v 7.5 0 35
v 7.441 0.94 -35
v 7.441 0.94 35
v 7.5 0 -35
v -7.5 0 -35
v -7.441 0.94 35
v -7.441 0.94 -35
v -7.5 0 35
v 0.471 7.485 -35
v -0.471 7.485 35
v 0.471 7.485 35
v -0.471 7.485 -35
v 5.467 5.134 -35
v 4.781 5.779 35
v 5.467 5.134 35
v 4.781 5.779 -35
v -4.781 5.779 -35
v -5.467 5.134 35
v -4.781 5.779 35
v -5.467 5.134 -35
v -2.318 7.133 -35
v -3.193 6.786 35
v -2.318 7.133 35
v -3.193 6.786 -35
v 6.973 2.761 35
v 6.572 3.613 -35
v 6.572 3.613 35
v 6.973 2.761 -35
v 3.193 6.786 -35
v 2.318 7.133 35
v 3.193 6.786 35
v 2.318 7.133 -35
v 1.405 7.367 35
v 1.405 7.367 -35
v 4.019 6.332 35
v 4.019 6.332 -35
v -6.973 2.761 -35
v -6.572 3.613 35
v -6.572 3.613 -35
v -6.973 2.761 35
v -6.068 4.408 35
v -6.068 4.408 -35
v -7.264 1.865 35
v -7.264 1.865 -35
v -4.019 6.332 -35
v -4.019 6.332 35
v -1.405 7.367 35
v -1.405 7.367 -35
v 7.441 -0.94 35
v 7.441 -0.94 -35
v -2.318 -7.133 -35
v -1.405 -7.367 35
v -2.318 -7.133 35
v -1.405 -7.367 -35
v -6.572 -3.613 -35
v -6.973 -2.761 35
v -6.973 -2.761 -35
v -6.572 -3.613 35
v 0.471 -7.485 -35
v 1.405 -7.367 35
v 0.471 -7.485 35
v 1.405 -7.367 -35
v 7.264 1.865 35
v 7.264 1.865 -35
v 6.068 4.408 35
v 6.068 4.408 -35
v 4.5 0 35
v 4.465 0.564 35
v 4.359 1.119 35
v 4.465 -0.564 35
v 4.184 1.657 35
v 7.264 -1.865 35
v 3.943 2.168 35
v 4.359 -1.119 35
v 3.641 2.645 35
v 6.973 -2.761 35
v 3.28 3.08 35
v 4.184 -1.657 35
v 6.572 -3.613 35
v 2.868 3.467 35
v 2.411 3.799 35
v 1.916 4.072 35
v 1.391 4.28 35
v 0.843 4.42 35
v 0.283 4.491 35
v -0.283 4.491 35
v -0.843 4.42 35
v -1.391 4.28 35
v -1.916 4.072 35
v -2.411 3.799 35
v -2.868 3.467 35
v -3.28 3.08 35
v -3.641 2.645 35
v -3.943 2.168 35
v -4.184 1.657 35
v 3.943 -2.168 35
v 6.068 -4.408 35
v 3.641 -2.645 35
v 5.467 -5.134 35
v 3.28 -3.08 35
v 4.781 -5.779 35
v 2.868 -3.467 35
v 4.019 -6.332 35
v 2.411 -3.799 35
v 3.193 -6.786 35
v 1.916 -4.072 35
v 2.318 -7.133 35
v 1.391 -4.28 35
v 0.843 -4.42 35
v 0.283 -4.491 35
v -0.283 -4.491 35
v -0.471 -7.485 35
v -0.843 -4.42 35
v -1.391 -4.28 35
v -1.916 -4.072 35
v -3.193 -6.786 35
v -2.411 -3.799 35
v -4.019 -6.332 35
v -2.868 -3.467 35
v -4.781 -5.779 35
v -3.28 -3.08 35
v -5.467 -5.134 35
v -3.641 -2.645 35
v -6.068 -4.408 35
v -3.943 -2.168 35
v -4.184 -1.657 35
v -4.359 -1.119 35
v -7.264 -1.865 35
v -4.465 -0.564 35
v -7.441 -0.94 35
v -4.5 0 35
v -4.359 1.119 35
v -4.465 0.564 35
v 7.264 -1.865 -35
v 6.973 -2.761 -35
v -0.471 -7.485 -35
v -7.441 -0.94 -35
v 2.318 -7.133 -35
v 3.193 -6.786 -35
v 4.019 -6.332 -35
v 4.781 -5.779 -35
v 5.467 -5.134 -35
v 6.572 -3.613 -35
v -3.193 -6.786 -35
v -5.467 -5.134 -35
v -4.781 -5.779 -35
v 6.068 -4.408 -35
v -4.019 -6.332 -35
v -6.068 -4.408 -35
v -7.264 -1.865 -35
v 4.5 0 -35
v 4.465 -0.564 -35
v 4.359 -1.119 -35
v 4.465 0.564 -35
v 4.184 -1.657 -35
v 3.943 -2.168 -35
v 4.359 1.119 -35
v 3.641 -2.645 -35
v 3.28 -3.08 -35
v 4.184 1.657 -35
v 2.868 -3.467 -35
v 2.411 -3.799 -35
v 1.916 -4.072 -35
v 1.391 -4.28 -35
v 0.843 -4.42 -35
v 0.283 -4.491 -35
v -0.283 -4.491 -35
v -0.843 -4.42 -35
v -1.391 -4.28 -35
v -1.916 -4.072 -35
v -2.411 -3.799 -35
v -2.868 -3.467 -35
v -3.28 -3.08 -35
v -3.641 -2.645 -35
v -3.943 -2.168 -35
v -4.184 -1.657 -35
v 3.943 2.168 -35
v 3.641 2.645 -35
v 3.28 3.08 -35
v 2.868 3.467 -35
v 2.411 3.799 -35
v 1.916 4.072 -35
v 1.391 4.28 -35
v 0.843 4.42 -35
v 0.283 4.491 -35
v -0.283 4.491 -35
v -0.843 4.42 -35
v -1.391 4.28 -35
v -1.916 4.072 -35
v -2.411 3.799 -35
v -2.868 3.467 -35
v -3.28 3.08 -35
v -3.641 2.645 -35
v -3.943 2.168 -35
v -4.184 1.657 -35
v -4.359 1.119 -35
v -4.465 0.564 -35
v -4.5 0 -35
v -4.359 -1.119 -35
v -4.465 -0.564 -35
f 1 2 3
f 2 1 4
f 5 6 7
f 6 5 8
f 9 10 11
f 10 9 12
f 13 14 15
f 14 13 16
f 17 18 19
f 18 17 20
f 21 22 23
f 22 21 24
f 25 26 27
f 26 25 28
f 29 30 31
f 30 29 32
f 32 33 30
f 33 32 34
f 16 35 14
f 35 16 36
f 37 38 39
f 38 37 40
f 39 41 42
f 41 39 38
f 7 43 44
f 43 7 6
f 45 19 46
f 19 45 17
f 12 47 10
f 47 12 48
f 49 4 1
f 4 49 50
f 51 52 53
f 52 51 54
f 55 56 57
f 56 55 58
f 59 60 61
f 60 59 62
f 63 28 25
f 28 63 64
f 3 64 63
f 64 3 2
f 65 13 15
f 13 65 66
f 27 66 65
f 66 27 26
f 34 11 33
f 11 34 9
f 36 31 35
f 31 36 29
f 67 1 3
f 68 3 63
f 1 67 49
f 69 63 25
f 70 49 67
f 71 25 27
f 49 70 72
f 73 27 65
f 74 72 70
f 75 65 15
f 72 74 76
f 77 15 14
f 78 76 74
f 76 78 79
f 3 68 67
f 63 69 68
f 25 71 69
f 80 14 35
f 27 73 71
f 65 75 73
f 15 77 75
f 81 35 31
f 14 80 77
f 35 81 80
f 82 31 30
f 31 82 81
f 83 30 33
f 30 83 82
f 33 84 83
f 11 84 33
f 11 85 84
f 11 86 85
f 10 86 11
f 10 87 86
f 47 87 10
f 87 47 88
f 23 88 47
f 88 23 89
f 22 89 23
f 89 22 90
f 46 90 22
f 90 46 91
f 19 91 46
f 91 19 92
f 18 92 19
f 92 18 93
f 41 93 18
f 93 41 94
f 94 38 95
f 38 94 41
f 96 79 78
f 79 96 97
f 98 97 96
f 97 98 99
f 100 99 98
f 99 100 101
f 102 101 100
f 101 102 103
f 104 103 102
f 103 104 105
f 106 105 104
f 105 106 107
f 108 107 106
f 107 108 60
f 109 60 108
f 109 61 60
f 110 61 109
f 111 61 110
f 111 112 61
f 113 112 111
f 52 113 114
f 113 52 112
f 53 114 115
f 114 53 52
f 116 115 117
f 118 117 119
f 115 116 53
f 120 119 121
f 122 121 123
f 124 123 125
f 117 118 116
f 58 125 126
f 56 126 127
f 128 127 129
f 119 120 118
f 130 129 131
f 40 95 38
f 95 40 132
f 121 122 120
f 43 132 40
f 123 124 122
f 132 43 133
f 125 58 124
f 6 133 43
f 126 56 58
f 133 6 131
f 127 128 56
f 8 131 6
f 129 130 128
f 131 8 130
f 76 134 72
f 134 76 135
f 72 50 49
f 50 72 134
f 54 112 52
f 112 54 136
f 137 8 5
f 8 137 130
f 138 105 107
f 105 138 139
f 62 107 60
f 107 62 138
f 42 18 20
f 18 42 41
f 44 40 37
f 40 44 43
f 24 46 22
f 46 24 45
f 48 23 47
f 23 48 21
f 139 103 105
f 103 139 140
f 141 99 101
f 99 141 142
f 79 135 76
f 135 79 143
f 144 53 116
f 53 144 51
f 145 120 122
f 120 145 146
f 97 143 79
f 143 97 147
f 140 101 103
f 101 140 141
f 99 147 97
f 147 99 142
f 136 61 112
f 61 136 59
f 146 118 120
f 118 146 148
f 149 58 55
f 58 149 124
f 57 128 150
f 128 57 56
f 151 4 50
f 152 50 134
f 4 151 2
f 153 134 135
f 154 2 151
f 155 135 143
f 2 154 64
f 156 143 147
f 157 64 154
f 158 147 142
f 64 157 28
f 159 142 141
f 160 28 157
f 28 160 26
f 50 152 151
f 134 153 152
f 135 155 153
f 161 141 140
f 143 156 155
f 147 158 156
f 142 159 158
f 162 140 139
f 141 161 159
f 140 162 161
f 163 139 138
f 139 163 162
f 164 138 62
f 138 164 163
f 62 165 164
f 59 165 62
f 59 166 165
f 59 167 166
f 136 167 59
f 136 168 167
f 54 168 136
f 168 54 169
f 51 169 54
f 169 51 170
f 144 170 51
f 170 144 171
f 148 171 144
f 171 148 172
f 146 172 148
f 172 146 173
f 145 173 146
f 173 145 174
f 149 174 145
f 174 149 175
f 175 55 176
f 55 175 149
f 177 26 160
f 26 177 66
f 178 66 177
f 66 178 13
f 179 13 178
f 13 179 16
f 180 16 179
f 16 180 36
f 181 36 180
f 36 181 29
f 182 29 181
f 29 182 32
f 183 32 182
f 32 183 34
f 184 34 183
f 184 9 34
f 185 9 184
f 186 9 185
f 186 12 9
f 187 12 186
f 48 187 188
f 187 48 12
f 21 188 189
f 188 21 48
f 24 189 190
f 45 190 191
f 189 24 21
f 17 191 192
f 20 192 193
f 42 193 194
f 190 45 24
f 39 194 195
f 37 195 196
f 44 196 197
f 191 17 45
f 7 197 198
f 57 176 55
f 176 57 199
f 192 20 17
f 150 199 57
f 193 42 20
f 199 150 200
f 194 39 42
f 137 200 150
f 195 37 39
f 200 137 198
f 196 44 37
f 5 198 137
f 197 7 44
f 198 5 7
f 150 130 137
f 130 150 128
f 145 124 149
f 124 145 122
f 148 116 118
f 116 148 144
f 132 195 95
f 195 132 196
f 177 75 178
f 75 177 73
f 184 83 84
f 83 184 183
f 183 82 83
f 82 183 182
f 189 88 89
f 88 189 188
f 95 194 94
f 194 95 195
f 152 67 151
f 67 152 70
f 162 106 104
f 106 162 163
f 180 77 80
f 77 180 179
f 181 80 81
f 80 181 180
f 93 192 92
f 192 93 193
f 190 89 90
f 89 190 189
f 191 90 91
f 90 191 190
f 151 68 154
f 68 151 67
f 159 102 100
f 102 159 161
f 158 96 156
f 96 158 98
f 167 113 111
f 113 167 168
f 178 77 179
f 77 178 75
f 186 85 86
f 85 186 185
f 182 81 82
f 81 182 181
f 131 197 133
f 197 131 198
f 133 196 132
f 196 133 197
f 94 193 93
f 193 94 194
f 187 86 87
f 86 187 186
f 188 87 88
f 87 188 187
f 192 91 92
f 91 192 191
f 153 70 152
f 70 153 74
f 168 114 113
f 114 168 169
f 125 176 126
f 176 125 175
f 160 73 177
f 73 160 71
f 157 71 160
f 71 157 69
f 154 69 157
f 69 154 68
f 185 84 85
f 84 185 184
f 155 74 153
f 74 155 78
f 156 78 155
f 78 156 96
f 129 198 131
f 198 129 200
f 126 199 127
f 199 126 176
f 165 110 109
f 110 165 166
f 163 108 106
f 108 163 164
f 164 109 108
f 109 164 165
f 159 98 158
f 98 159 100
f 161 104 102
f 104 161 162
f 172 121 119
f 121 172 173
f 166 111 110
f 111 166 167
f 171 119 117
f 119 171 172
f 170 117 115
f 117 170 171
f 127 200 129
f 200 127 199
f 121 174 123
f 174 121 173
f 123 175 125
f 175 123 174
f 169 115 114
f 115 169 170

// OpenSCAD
$fn = 50;


difference() {
	union() {
		translate(v = [0, 0, -35.0000000000]) {
			cylinder(h = 70, r = 7.5000000000);
		}
	}
	union() {
		translate(v = [0, 0, -100.0000000000]) {
			cylinder(h = 200, r = 4.5000000000);
		}
	}
}
